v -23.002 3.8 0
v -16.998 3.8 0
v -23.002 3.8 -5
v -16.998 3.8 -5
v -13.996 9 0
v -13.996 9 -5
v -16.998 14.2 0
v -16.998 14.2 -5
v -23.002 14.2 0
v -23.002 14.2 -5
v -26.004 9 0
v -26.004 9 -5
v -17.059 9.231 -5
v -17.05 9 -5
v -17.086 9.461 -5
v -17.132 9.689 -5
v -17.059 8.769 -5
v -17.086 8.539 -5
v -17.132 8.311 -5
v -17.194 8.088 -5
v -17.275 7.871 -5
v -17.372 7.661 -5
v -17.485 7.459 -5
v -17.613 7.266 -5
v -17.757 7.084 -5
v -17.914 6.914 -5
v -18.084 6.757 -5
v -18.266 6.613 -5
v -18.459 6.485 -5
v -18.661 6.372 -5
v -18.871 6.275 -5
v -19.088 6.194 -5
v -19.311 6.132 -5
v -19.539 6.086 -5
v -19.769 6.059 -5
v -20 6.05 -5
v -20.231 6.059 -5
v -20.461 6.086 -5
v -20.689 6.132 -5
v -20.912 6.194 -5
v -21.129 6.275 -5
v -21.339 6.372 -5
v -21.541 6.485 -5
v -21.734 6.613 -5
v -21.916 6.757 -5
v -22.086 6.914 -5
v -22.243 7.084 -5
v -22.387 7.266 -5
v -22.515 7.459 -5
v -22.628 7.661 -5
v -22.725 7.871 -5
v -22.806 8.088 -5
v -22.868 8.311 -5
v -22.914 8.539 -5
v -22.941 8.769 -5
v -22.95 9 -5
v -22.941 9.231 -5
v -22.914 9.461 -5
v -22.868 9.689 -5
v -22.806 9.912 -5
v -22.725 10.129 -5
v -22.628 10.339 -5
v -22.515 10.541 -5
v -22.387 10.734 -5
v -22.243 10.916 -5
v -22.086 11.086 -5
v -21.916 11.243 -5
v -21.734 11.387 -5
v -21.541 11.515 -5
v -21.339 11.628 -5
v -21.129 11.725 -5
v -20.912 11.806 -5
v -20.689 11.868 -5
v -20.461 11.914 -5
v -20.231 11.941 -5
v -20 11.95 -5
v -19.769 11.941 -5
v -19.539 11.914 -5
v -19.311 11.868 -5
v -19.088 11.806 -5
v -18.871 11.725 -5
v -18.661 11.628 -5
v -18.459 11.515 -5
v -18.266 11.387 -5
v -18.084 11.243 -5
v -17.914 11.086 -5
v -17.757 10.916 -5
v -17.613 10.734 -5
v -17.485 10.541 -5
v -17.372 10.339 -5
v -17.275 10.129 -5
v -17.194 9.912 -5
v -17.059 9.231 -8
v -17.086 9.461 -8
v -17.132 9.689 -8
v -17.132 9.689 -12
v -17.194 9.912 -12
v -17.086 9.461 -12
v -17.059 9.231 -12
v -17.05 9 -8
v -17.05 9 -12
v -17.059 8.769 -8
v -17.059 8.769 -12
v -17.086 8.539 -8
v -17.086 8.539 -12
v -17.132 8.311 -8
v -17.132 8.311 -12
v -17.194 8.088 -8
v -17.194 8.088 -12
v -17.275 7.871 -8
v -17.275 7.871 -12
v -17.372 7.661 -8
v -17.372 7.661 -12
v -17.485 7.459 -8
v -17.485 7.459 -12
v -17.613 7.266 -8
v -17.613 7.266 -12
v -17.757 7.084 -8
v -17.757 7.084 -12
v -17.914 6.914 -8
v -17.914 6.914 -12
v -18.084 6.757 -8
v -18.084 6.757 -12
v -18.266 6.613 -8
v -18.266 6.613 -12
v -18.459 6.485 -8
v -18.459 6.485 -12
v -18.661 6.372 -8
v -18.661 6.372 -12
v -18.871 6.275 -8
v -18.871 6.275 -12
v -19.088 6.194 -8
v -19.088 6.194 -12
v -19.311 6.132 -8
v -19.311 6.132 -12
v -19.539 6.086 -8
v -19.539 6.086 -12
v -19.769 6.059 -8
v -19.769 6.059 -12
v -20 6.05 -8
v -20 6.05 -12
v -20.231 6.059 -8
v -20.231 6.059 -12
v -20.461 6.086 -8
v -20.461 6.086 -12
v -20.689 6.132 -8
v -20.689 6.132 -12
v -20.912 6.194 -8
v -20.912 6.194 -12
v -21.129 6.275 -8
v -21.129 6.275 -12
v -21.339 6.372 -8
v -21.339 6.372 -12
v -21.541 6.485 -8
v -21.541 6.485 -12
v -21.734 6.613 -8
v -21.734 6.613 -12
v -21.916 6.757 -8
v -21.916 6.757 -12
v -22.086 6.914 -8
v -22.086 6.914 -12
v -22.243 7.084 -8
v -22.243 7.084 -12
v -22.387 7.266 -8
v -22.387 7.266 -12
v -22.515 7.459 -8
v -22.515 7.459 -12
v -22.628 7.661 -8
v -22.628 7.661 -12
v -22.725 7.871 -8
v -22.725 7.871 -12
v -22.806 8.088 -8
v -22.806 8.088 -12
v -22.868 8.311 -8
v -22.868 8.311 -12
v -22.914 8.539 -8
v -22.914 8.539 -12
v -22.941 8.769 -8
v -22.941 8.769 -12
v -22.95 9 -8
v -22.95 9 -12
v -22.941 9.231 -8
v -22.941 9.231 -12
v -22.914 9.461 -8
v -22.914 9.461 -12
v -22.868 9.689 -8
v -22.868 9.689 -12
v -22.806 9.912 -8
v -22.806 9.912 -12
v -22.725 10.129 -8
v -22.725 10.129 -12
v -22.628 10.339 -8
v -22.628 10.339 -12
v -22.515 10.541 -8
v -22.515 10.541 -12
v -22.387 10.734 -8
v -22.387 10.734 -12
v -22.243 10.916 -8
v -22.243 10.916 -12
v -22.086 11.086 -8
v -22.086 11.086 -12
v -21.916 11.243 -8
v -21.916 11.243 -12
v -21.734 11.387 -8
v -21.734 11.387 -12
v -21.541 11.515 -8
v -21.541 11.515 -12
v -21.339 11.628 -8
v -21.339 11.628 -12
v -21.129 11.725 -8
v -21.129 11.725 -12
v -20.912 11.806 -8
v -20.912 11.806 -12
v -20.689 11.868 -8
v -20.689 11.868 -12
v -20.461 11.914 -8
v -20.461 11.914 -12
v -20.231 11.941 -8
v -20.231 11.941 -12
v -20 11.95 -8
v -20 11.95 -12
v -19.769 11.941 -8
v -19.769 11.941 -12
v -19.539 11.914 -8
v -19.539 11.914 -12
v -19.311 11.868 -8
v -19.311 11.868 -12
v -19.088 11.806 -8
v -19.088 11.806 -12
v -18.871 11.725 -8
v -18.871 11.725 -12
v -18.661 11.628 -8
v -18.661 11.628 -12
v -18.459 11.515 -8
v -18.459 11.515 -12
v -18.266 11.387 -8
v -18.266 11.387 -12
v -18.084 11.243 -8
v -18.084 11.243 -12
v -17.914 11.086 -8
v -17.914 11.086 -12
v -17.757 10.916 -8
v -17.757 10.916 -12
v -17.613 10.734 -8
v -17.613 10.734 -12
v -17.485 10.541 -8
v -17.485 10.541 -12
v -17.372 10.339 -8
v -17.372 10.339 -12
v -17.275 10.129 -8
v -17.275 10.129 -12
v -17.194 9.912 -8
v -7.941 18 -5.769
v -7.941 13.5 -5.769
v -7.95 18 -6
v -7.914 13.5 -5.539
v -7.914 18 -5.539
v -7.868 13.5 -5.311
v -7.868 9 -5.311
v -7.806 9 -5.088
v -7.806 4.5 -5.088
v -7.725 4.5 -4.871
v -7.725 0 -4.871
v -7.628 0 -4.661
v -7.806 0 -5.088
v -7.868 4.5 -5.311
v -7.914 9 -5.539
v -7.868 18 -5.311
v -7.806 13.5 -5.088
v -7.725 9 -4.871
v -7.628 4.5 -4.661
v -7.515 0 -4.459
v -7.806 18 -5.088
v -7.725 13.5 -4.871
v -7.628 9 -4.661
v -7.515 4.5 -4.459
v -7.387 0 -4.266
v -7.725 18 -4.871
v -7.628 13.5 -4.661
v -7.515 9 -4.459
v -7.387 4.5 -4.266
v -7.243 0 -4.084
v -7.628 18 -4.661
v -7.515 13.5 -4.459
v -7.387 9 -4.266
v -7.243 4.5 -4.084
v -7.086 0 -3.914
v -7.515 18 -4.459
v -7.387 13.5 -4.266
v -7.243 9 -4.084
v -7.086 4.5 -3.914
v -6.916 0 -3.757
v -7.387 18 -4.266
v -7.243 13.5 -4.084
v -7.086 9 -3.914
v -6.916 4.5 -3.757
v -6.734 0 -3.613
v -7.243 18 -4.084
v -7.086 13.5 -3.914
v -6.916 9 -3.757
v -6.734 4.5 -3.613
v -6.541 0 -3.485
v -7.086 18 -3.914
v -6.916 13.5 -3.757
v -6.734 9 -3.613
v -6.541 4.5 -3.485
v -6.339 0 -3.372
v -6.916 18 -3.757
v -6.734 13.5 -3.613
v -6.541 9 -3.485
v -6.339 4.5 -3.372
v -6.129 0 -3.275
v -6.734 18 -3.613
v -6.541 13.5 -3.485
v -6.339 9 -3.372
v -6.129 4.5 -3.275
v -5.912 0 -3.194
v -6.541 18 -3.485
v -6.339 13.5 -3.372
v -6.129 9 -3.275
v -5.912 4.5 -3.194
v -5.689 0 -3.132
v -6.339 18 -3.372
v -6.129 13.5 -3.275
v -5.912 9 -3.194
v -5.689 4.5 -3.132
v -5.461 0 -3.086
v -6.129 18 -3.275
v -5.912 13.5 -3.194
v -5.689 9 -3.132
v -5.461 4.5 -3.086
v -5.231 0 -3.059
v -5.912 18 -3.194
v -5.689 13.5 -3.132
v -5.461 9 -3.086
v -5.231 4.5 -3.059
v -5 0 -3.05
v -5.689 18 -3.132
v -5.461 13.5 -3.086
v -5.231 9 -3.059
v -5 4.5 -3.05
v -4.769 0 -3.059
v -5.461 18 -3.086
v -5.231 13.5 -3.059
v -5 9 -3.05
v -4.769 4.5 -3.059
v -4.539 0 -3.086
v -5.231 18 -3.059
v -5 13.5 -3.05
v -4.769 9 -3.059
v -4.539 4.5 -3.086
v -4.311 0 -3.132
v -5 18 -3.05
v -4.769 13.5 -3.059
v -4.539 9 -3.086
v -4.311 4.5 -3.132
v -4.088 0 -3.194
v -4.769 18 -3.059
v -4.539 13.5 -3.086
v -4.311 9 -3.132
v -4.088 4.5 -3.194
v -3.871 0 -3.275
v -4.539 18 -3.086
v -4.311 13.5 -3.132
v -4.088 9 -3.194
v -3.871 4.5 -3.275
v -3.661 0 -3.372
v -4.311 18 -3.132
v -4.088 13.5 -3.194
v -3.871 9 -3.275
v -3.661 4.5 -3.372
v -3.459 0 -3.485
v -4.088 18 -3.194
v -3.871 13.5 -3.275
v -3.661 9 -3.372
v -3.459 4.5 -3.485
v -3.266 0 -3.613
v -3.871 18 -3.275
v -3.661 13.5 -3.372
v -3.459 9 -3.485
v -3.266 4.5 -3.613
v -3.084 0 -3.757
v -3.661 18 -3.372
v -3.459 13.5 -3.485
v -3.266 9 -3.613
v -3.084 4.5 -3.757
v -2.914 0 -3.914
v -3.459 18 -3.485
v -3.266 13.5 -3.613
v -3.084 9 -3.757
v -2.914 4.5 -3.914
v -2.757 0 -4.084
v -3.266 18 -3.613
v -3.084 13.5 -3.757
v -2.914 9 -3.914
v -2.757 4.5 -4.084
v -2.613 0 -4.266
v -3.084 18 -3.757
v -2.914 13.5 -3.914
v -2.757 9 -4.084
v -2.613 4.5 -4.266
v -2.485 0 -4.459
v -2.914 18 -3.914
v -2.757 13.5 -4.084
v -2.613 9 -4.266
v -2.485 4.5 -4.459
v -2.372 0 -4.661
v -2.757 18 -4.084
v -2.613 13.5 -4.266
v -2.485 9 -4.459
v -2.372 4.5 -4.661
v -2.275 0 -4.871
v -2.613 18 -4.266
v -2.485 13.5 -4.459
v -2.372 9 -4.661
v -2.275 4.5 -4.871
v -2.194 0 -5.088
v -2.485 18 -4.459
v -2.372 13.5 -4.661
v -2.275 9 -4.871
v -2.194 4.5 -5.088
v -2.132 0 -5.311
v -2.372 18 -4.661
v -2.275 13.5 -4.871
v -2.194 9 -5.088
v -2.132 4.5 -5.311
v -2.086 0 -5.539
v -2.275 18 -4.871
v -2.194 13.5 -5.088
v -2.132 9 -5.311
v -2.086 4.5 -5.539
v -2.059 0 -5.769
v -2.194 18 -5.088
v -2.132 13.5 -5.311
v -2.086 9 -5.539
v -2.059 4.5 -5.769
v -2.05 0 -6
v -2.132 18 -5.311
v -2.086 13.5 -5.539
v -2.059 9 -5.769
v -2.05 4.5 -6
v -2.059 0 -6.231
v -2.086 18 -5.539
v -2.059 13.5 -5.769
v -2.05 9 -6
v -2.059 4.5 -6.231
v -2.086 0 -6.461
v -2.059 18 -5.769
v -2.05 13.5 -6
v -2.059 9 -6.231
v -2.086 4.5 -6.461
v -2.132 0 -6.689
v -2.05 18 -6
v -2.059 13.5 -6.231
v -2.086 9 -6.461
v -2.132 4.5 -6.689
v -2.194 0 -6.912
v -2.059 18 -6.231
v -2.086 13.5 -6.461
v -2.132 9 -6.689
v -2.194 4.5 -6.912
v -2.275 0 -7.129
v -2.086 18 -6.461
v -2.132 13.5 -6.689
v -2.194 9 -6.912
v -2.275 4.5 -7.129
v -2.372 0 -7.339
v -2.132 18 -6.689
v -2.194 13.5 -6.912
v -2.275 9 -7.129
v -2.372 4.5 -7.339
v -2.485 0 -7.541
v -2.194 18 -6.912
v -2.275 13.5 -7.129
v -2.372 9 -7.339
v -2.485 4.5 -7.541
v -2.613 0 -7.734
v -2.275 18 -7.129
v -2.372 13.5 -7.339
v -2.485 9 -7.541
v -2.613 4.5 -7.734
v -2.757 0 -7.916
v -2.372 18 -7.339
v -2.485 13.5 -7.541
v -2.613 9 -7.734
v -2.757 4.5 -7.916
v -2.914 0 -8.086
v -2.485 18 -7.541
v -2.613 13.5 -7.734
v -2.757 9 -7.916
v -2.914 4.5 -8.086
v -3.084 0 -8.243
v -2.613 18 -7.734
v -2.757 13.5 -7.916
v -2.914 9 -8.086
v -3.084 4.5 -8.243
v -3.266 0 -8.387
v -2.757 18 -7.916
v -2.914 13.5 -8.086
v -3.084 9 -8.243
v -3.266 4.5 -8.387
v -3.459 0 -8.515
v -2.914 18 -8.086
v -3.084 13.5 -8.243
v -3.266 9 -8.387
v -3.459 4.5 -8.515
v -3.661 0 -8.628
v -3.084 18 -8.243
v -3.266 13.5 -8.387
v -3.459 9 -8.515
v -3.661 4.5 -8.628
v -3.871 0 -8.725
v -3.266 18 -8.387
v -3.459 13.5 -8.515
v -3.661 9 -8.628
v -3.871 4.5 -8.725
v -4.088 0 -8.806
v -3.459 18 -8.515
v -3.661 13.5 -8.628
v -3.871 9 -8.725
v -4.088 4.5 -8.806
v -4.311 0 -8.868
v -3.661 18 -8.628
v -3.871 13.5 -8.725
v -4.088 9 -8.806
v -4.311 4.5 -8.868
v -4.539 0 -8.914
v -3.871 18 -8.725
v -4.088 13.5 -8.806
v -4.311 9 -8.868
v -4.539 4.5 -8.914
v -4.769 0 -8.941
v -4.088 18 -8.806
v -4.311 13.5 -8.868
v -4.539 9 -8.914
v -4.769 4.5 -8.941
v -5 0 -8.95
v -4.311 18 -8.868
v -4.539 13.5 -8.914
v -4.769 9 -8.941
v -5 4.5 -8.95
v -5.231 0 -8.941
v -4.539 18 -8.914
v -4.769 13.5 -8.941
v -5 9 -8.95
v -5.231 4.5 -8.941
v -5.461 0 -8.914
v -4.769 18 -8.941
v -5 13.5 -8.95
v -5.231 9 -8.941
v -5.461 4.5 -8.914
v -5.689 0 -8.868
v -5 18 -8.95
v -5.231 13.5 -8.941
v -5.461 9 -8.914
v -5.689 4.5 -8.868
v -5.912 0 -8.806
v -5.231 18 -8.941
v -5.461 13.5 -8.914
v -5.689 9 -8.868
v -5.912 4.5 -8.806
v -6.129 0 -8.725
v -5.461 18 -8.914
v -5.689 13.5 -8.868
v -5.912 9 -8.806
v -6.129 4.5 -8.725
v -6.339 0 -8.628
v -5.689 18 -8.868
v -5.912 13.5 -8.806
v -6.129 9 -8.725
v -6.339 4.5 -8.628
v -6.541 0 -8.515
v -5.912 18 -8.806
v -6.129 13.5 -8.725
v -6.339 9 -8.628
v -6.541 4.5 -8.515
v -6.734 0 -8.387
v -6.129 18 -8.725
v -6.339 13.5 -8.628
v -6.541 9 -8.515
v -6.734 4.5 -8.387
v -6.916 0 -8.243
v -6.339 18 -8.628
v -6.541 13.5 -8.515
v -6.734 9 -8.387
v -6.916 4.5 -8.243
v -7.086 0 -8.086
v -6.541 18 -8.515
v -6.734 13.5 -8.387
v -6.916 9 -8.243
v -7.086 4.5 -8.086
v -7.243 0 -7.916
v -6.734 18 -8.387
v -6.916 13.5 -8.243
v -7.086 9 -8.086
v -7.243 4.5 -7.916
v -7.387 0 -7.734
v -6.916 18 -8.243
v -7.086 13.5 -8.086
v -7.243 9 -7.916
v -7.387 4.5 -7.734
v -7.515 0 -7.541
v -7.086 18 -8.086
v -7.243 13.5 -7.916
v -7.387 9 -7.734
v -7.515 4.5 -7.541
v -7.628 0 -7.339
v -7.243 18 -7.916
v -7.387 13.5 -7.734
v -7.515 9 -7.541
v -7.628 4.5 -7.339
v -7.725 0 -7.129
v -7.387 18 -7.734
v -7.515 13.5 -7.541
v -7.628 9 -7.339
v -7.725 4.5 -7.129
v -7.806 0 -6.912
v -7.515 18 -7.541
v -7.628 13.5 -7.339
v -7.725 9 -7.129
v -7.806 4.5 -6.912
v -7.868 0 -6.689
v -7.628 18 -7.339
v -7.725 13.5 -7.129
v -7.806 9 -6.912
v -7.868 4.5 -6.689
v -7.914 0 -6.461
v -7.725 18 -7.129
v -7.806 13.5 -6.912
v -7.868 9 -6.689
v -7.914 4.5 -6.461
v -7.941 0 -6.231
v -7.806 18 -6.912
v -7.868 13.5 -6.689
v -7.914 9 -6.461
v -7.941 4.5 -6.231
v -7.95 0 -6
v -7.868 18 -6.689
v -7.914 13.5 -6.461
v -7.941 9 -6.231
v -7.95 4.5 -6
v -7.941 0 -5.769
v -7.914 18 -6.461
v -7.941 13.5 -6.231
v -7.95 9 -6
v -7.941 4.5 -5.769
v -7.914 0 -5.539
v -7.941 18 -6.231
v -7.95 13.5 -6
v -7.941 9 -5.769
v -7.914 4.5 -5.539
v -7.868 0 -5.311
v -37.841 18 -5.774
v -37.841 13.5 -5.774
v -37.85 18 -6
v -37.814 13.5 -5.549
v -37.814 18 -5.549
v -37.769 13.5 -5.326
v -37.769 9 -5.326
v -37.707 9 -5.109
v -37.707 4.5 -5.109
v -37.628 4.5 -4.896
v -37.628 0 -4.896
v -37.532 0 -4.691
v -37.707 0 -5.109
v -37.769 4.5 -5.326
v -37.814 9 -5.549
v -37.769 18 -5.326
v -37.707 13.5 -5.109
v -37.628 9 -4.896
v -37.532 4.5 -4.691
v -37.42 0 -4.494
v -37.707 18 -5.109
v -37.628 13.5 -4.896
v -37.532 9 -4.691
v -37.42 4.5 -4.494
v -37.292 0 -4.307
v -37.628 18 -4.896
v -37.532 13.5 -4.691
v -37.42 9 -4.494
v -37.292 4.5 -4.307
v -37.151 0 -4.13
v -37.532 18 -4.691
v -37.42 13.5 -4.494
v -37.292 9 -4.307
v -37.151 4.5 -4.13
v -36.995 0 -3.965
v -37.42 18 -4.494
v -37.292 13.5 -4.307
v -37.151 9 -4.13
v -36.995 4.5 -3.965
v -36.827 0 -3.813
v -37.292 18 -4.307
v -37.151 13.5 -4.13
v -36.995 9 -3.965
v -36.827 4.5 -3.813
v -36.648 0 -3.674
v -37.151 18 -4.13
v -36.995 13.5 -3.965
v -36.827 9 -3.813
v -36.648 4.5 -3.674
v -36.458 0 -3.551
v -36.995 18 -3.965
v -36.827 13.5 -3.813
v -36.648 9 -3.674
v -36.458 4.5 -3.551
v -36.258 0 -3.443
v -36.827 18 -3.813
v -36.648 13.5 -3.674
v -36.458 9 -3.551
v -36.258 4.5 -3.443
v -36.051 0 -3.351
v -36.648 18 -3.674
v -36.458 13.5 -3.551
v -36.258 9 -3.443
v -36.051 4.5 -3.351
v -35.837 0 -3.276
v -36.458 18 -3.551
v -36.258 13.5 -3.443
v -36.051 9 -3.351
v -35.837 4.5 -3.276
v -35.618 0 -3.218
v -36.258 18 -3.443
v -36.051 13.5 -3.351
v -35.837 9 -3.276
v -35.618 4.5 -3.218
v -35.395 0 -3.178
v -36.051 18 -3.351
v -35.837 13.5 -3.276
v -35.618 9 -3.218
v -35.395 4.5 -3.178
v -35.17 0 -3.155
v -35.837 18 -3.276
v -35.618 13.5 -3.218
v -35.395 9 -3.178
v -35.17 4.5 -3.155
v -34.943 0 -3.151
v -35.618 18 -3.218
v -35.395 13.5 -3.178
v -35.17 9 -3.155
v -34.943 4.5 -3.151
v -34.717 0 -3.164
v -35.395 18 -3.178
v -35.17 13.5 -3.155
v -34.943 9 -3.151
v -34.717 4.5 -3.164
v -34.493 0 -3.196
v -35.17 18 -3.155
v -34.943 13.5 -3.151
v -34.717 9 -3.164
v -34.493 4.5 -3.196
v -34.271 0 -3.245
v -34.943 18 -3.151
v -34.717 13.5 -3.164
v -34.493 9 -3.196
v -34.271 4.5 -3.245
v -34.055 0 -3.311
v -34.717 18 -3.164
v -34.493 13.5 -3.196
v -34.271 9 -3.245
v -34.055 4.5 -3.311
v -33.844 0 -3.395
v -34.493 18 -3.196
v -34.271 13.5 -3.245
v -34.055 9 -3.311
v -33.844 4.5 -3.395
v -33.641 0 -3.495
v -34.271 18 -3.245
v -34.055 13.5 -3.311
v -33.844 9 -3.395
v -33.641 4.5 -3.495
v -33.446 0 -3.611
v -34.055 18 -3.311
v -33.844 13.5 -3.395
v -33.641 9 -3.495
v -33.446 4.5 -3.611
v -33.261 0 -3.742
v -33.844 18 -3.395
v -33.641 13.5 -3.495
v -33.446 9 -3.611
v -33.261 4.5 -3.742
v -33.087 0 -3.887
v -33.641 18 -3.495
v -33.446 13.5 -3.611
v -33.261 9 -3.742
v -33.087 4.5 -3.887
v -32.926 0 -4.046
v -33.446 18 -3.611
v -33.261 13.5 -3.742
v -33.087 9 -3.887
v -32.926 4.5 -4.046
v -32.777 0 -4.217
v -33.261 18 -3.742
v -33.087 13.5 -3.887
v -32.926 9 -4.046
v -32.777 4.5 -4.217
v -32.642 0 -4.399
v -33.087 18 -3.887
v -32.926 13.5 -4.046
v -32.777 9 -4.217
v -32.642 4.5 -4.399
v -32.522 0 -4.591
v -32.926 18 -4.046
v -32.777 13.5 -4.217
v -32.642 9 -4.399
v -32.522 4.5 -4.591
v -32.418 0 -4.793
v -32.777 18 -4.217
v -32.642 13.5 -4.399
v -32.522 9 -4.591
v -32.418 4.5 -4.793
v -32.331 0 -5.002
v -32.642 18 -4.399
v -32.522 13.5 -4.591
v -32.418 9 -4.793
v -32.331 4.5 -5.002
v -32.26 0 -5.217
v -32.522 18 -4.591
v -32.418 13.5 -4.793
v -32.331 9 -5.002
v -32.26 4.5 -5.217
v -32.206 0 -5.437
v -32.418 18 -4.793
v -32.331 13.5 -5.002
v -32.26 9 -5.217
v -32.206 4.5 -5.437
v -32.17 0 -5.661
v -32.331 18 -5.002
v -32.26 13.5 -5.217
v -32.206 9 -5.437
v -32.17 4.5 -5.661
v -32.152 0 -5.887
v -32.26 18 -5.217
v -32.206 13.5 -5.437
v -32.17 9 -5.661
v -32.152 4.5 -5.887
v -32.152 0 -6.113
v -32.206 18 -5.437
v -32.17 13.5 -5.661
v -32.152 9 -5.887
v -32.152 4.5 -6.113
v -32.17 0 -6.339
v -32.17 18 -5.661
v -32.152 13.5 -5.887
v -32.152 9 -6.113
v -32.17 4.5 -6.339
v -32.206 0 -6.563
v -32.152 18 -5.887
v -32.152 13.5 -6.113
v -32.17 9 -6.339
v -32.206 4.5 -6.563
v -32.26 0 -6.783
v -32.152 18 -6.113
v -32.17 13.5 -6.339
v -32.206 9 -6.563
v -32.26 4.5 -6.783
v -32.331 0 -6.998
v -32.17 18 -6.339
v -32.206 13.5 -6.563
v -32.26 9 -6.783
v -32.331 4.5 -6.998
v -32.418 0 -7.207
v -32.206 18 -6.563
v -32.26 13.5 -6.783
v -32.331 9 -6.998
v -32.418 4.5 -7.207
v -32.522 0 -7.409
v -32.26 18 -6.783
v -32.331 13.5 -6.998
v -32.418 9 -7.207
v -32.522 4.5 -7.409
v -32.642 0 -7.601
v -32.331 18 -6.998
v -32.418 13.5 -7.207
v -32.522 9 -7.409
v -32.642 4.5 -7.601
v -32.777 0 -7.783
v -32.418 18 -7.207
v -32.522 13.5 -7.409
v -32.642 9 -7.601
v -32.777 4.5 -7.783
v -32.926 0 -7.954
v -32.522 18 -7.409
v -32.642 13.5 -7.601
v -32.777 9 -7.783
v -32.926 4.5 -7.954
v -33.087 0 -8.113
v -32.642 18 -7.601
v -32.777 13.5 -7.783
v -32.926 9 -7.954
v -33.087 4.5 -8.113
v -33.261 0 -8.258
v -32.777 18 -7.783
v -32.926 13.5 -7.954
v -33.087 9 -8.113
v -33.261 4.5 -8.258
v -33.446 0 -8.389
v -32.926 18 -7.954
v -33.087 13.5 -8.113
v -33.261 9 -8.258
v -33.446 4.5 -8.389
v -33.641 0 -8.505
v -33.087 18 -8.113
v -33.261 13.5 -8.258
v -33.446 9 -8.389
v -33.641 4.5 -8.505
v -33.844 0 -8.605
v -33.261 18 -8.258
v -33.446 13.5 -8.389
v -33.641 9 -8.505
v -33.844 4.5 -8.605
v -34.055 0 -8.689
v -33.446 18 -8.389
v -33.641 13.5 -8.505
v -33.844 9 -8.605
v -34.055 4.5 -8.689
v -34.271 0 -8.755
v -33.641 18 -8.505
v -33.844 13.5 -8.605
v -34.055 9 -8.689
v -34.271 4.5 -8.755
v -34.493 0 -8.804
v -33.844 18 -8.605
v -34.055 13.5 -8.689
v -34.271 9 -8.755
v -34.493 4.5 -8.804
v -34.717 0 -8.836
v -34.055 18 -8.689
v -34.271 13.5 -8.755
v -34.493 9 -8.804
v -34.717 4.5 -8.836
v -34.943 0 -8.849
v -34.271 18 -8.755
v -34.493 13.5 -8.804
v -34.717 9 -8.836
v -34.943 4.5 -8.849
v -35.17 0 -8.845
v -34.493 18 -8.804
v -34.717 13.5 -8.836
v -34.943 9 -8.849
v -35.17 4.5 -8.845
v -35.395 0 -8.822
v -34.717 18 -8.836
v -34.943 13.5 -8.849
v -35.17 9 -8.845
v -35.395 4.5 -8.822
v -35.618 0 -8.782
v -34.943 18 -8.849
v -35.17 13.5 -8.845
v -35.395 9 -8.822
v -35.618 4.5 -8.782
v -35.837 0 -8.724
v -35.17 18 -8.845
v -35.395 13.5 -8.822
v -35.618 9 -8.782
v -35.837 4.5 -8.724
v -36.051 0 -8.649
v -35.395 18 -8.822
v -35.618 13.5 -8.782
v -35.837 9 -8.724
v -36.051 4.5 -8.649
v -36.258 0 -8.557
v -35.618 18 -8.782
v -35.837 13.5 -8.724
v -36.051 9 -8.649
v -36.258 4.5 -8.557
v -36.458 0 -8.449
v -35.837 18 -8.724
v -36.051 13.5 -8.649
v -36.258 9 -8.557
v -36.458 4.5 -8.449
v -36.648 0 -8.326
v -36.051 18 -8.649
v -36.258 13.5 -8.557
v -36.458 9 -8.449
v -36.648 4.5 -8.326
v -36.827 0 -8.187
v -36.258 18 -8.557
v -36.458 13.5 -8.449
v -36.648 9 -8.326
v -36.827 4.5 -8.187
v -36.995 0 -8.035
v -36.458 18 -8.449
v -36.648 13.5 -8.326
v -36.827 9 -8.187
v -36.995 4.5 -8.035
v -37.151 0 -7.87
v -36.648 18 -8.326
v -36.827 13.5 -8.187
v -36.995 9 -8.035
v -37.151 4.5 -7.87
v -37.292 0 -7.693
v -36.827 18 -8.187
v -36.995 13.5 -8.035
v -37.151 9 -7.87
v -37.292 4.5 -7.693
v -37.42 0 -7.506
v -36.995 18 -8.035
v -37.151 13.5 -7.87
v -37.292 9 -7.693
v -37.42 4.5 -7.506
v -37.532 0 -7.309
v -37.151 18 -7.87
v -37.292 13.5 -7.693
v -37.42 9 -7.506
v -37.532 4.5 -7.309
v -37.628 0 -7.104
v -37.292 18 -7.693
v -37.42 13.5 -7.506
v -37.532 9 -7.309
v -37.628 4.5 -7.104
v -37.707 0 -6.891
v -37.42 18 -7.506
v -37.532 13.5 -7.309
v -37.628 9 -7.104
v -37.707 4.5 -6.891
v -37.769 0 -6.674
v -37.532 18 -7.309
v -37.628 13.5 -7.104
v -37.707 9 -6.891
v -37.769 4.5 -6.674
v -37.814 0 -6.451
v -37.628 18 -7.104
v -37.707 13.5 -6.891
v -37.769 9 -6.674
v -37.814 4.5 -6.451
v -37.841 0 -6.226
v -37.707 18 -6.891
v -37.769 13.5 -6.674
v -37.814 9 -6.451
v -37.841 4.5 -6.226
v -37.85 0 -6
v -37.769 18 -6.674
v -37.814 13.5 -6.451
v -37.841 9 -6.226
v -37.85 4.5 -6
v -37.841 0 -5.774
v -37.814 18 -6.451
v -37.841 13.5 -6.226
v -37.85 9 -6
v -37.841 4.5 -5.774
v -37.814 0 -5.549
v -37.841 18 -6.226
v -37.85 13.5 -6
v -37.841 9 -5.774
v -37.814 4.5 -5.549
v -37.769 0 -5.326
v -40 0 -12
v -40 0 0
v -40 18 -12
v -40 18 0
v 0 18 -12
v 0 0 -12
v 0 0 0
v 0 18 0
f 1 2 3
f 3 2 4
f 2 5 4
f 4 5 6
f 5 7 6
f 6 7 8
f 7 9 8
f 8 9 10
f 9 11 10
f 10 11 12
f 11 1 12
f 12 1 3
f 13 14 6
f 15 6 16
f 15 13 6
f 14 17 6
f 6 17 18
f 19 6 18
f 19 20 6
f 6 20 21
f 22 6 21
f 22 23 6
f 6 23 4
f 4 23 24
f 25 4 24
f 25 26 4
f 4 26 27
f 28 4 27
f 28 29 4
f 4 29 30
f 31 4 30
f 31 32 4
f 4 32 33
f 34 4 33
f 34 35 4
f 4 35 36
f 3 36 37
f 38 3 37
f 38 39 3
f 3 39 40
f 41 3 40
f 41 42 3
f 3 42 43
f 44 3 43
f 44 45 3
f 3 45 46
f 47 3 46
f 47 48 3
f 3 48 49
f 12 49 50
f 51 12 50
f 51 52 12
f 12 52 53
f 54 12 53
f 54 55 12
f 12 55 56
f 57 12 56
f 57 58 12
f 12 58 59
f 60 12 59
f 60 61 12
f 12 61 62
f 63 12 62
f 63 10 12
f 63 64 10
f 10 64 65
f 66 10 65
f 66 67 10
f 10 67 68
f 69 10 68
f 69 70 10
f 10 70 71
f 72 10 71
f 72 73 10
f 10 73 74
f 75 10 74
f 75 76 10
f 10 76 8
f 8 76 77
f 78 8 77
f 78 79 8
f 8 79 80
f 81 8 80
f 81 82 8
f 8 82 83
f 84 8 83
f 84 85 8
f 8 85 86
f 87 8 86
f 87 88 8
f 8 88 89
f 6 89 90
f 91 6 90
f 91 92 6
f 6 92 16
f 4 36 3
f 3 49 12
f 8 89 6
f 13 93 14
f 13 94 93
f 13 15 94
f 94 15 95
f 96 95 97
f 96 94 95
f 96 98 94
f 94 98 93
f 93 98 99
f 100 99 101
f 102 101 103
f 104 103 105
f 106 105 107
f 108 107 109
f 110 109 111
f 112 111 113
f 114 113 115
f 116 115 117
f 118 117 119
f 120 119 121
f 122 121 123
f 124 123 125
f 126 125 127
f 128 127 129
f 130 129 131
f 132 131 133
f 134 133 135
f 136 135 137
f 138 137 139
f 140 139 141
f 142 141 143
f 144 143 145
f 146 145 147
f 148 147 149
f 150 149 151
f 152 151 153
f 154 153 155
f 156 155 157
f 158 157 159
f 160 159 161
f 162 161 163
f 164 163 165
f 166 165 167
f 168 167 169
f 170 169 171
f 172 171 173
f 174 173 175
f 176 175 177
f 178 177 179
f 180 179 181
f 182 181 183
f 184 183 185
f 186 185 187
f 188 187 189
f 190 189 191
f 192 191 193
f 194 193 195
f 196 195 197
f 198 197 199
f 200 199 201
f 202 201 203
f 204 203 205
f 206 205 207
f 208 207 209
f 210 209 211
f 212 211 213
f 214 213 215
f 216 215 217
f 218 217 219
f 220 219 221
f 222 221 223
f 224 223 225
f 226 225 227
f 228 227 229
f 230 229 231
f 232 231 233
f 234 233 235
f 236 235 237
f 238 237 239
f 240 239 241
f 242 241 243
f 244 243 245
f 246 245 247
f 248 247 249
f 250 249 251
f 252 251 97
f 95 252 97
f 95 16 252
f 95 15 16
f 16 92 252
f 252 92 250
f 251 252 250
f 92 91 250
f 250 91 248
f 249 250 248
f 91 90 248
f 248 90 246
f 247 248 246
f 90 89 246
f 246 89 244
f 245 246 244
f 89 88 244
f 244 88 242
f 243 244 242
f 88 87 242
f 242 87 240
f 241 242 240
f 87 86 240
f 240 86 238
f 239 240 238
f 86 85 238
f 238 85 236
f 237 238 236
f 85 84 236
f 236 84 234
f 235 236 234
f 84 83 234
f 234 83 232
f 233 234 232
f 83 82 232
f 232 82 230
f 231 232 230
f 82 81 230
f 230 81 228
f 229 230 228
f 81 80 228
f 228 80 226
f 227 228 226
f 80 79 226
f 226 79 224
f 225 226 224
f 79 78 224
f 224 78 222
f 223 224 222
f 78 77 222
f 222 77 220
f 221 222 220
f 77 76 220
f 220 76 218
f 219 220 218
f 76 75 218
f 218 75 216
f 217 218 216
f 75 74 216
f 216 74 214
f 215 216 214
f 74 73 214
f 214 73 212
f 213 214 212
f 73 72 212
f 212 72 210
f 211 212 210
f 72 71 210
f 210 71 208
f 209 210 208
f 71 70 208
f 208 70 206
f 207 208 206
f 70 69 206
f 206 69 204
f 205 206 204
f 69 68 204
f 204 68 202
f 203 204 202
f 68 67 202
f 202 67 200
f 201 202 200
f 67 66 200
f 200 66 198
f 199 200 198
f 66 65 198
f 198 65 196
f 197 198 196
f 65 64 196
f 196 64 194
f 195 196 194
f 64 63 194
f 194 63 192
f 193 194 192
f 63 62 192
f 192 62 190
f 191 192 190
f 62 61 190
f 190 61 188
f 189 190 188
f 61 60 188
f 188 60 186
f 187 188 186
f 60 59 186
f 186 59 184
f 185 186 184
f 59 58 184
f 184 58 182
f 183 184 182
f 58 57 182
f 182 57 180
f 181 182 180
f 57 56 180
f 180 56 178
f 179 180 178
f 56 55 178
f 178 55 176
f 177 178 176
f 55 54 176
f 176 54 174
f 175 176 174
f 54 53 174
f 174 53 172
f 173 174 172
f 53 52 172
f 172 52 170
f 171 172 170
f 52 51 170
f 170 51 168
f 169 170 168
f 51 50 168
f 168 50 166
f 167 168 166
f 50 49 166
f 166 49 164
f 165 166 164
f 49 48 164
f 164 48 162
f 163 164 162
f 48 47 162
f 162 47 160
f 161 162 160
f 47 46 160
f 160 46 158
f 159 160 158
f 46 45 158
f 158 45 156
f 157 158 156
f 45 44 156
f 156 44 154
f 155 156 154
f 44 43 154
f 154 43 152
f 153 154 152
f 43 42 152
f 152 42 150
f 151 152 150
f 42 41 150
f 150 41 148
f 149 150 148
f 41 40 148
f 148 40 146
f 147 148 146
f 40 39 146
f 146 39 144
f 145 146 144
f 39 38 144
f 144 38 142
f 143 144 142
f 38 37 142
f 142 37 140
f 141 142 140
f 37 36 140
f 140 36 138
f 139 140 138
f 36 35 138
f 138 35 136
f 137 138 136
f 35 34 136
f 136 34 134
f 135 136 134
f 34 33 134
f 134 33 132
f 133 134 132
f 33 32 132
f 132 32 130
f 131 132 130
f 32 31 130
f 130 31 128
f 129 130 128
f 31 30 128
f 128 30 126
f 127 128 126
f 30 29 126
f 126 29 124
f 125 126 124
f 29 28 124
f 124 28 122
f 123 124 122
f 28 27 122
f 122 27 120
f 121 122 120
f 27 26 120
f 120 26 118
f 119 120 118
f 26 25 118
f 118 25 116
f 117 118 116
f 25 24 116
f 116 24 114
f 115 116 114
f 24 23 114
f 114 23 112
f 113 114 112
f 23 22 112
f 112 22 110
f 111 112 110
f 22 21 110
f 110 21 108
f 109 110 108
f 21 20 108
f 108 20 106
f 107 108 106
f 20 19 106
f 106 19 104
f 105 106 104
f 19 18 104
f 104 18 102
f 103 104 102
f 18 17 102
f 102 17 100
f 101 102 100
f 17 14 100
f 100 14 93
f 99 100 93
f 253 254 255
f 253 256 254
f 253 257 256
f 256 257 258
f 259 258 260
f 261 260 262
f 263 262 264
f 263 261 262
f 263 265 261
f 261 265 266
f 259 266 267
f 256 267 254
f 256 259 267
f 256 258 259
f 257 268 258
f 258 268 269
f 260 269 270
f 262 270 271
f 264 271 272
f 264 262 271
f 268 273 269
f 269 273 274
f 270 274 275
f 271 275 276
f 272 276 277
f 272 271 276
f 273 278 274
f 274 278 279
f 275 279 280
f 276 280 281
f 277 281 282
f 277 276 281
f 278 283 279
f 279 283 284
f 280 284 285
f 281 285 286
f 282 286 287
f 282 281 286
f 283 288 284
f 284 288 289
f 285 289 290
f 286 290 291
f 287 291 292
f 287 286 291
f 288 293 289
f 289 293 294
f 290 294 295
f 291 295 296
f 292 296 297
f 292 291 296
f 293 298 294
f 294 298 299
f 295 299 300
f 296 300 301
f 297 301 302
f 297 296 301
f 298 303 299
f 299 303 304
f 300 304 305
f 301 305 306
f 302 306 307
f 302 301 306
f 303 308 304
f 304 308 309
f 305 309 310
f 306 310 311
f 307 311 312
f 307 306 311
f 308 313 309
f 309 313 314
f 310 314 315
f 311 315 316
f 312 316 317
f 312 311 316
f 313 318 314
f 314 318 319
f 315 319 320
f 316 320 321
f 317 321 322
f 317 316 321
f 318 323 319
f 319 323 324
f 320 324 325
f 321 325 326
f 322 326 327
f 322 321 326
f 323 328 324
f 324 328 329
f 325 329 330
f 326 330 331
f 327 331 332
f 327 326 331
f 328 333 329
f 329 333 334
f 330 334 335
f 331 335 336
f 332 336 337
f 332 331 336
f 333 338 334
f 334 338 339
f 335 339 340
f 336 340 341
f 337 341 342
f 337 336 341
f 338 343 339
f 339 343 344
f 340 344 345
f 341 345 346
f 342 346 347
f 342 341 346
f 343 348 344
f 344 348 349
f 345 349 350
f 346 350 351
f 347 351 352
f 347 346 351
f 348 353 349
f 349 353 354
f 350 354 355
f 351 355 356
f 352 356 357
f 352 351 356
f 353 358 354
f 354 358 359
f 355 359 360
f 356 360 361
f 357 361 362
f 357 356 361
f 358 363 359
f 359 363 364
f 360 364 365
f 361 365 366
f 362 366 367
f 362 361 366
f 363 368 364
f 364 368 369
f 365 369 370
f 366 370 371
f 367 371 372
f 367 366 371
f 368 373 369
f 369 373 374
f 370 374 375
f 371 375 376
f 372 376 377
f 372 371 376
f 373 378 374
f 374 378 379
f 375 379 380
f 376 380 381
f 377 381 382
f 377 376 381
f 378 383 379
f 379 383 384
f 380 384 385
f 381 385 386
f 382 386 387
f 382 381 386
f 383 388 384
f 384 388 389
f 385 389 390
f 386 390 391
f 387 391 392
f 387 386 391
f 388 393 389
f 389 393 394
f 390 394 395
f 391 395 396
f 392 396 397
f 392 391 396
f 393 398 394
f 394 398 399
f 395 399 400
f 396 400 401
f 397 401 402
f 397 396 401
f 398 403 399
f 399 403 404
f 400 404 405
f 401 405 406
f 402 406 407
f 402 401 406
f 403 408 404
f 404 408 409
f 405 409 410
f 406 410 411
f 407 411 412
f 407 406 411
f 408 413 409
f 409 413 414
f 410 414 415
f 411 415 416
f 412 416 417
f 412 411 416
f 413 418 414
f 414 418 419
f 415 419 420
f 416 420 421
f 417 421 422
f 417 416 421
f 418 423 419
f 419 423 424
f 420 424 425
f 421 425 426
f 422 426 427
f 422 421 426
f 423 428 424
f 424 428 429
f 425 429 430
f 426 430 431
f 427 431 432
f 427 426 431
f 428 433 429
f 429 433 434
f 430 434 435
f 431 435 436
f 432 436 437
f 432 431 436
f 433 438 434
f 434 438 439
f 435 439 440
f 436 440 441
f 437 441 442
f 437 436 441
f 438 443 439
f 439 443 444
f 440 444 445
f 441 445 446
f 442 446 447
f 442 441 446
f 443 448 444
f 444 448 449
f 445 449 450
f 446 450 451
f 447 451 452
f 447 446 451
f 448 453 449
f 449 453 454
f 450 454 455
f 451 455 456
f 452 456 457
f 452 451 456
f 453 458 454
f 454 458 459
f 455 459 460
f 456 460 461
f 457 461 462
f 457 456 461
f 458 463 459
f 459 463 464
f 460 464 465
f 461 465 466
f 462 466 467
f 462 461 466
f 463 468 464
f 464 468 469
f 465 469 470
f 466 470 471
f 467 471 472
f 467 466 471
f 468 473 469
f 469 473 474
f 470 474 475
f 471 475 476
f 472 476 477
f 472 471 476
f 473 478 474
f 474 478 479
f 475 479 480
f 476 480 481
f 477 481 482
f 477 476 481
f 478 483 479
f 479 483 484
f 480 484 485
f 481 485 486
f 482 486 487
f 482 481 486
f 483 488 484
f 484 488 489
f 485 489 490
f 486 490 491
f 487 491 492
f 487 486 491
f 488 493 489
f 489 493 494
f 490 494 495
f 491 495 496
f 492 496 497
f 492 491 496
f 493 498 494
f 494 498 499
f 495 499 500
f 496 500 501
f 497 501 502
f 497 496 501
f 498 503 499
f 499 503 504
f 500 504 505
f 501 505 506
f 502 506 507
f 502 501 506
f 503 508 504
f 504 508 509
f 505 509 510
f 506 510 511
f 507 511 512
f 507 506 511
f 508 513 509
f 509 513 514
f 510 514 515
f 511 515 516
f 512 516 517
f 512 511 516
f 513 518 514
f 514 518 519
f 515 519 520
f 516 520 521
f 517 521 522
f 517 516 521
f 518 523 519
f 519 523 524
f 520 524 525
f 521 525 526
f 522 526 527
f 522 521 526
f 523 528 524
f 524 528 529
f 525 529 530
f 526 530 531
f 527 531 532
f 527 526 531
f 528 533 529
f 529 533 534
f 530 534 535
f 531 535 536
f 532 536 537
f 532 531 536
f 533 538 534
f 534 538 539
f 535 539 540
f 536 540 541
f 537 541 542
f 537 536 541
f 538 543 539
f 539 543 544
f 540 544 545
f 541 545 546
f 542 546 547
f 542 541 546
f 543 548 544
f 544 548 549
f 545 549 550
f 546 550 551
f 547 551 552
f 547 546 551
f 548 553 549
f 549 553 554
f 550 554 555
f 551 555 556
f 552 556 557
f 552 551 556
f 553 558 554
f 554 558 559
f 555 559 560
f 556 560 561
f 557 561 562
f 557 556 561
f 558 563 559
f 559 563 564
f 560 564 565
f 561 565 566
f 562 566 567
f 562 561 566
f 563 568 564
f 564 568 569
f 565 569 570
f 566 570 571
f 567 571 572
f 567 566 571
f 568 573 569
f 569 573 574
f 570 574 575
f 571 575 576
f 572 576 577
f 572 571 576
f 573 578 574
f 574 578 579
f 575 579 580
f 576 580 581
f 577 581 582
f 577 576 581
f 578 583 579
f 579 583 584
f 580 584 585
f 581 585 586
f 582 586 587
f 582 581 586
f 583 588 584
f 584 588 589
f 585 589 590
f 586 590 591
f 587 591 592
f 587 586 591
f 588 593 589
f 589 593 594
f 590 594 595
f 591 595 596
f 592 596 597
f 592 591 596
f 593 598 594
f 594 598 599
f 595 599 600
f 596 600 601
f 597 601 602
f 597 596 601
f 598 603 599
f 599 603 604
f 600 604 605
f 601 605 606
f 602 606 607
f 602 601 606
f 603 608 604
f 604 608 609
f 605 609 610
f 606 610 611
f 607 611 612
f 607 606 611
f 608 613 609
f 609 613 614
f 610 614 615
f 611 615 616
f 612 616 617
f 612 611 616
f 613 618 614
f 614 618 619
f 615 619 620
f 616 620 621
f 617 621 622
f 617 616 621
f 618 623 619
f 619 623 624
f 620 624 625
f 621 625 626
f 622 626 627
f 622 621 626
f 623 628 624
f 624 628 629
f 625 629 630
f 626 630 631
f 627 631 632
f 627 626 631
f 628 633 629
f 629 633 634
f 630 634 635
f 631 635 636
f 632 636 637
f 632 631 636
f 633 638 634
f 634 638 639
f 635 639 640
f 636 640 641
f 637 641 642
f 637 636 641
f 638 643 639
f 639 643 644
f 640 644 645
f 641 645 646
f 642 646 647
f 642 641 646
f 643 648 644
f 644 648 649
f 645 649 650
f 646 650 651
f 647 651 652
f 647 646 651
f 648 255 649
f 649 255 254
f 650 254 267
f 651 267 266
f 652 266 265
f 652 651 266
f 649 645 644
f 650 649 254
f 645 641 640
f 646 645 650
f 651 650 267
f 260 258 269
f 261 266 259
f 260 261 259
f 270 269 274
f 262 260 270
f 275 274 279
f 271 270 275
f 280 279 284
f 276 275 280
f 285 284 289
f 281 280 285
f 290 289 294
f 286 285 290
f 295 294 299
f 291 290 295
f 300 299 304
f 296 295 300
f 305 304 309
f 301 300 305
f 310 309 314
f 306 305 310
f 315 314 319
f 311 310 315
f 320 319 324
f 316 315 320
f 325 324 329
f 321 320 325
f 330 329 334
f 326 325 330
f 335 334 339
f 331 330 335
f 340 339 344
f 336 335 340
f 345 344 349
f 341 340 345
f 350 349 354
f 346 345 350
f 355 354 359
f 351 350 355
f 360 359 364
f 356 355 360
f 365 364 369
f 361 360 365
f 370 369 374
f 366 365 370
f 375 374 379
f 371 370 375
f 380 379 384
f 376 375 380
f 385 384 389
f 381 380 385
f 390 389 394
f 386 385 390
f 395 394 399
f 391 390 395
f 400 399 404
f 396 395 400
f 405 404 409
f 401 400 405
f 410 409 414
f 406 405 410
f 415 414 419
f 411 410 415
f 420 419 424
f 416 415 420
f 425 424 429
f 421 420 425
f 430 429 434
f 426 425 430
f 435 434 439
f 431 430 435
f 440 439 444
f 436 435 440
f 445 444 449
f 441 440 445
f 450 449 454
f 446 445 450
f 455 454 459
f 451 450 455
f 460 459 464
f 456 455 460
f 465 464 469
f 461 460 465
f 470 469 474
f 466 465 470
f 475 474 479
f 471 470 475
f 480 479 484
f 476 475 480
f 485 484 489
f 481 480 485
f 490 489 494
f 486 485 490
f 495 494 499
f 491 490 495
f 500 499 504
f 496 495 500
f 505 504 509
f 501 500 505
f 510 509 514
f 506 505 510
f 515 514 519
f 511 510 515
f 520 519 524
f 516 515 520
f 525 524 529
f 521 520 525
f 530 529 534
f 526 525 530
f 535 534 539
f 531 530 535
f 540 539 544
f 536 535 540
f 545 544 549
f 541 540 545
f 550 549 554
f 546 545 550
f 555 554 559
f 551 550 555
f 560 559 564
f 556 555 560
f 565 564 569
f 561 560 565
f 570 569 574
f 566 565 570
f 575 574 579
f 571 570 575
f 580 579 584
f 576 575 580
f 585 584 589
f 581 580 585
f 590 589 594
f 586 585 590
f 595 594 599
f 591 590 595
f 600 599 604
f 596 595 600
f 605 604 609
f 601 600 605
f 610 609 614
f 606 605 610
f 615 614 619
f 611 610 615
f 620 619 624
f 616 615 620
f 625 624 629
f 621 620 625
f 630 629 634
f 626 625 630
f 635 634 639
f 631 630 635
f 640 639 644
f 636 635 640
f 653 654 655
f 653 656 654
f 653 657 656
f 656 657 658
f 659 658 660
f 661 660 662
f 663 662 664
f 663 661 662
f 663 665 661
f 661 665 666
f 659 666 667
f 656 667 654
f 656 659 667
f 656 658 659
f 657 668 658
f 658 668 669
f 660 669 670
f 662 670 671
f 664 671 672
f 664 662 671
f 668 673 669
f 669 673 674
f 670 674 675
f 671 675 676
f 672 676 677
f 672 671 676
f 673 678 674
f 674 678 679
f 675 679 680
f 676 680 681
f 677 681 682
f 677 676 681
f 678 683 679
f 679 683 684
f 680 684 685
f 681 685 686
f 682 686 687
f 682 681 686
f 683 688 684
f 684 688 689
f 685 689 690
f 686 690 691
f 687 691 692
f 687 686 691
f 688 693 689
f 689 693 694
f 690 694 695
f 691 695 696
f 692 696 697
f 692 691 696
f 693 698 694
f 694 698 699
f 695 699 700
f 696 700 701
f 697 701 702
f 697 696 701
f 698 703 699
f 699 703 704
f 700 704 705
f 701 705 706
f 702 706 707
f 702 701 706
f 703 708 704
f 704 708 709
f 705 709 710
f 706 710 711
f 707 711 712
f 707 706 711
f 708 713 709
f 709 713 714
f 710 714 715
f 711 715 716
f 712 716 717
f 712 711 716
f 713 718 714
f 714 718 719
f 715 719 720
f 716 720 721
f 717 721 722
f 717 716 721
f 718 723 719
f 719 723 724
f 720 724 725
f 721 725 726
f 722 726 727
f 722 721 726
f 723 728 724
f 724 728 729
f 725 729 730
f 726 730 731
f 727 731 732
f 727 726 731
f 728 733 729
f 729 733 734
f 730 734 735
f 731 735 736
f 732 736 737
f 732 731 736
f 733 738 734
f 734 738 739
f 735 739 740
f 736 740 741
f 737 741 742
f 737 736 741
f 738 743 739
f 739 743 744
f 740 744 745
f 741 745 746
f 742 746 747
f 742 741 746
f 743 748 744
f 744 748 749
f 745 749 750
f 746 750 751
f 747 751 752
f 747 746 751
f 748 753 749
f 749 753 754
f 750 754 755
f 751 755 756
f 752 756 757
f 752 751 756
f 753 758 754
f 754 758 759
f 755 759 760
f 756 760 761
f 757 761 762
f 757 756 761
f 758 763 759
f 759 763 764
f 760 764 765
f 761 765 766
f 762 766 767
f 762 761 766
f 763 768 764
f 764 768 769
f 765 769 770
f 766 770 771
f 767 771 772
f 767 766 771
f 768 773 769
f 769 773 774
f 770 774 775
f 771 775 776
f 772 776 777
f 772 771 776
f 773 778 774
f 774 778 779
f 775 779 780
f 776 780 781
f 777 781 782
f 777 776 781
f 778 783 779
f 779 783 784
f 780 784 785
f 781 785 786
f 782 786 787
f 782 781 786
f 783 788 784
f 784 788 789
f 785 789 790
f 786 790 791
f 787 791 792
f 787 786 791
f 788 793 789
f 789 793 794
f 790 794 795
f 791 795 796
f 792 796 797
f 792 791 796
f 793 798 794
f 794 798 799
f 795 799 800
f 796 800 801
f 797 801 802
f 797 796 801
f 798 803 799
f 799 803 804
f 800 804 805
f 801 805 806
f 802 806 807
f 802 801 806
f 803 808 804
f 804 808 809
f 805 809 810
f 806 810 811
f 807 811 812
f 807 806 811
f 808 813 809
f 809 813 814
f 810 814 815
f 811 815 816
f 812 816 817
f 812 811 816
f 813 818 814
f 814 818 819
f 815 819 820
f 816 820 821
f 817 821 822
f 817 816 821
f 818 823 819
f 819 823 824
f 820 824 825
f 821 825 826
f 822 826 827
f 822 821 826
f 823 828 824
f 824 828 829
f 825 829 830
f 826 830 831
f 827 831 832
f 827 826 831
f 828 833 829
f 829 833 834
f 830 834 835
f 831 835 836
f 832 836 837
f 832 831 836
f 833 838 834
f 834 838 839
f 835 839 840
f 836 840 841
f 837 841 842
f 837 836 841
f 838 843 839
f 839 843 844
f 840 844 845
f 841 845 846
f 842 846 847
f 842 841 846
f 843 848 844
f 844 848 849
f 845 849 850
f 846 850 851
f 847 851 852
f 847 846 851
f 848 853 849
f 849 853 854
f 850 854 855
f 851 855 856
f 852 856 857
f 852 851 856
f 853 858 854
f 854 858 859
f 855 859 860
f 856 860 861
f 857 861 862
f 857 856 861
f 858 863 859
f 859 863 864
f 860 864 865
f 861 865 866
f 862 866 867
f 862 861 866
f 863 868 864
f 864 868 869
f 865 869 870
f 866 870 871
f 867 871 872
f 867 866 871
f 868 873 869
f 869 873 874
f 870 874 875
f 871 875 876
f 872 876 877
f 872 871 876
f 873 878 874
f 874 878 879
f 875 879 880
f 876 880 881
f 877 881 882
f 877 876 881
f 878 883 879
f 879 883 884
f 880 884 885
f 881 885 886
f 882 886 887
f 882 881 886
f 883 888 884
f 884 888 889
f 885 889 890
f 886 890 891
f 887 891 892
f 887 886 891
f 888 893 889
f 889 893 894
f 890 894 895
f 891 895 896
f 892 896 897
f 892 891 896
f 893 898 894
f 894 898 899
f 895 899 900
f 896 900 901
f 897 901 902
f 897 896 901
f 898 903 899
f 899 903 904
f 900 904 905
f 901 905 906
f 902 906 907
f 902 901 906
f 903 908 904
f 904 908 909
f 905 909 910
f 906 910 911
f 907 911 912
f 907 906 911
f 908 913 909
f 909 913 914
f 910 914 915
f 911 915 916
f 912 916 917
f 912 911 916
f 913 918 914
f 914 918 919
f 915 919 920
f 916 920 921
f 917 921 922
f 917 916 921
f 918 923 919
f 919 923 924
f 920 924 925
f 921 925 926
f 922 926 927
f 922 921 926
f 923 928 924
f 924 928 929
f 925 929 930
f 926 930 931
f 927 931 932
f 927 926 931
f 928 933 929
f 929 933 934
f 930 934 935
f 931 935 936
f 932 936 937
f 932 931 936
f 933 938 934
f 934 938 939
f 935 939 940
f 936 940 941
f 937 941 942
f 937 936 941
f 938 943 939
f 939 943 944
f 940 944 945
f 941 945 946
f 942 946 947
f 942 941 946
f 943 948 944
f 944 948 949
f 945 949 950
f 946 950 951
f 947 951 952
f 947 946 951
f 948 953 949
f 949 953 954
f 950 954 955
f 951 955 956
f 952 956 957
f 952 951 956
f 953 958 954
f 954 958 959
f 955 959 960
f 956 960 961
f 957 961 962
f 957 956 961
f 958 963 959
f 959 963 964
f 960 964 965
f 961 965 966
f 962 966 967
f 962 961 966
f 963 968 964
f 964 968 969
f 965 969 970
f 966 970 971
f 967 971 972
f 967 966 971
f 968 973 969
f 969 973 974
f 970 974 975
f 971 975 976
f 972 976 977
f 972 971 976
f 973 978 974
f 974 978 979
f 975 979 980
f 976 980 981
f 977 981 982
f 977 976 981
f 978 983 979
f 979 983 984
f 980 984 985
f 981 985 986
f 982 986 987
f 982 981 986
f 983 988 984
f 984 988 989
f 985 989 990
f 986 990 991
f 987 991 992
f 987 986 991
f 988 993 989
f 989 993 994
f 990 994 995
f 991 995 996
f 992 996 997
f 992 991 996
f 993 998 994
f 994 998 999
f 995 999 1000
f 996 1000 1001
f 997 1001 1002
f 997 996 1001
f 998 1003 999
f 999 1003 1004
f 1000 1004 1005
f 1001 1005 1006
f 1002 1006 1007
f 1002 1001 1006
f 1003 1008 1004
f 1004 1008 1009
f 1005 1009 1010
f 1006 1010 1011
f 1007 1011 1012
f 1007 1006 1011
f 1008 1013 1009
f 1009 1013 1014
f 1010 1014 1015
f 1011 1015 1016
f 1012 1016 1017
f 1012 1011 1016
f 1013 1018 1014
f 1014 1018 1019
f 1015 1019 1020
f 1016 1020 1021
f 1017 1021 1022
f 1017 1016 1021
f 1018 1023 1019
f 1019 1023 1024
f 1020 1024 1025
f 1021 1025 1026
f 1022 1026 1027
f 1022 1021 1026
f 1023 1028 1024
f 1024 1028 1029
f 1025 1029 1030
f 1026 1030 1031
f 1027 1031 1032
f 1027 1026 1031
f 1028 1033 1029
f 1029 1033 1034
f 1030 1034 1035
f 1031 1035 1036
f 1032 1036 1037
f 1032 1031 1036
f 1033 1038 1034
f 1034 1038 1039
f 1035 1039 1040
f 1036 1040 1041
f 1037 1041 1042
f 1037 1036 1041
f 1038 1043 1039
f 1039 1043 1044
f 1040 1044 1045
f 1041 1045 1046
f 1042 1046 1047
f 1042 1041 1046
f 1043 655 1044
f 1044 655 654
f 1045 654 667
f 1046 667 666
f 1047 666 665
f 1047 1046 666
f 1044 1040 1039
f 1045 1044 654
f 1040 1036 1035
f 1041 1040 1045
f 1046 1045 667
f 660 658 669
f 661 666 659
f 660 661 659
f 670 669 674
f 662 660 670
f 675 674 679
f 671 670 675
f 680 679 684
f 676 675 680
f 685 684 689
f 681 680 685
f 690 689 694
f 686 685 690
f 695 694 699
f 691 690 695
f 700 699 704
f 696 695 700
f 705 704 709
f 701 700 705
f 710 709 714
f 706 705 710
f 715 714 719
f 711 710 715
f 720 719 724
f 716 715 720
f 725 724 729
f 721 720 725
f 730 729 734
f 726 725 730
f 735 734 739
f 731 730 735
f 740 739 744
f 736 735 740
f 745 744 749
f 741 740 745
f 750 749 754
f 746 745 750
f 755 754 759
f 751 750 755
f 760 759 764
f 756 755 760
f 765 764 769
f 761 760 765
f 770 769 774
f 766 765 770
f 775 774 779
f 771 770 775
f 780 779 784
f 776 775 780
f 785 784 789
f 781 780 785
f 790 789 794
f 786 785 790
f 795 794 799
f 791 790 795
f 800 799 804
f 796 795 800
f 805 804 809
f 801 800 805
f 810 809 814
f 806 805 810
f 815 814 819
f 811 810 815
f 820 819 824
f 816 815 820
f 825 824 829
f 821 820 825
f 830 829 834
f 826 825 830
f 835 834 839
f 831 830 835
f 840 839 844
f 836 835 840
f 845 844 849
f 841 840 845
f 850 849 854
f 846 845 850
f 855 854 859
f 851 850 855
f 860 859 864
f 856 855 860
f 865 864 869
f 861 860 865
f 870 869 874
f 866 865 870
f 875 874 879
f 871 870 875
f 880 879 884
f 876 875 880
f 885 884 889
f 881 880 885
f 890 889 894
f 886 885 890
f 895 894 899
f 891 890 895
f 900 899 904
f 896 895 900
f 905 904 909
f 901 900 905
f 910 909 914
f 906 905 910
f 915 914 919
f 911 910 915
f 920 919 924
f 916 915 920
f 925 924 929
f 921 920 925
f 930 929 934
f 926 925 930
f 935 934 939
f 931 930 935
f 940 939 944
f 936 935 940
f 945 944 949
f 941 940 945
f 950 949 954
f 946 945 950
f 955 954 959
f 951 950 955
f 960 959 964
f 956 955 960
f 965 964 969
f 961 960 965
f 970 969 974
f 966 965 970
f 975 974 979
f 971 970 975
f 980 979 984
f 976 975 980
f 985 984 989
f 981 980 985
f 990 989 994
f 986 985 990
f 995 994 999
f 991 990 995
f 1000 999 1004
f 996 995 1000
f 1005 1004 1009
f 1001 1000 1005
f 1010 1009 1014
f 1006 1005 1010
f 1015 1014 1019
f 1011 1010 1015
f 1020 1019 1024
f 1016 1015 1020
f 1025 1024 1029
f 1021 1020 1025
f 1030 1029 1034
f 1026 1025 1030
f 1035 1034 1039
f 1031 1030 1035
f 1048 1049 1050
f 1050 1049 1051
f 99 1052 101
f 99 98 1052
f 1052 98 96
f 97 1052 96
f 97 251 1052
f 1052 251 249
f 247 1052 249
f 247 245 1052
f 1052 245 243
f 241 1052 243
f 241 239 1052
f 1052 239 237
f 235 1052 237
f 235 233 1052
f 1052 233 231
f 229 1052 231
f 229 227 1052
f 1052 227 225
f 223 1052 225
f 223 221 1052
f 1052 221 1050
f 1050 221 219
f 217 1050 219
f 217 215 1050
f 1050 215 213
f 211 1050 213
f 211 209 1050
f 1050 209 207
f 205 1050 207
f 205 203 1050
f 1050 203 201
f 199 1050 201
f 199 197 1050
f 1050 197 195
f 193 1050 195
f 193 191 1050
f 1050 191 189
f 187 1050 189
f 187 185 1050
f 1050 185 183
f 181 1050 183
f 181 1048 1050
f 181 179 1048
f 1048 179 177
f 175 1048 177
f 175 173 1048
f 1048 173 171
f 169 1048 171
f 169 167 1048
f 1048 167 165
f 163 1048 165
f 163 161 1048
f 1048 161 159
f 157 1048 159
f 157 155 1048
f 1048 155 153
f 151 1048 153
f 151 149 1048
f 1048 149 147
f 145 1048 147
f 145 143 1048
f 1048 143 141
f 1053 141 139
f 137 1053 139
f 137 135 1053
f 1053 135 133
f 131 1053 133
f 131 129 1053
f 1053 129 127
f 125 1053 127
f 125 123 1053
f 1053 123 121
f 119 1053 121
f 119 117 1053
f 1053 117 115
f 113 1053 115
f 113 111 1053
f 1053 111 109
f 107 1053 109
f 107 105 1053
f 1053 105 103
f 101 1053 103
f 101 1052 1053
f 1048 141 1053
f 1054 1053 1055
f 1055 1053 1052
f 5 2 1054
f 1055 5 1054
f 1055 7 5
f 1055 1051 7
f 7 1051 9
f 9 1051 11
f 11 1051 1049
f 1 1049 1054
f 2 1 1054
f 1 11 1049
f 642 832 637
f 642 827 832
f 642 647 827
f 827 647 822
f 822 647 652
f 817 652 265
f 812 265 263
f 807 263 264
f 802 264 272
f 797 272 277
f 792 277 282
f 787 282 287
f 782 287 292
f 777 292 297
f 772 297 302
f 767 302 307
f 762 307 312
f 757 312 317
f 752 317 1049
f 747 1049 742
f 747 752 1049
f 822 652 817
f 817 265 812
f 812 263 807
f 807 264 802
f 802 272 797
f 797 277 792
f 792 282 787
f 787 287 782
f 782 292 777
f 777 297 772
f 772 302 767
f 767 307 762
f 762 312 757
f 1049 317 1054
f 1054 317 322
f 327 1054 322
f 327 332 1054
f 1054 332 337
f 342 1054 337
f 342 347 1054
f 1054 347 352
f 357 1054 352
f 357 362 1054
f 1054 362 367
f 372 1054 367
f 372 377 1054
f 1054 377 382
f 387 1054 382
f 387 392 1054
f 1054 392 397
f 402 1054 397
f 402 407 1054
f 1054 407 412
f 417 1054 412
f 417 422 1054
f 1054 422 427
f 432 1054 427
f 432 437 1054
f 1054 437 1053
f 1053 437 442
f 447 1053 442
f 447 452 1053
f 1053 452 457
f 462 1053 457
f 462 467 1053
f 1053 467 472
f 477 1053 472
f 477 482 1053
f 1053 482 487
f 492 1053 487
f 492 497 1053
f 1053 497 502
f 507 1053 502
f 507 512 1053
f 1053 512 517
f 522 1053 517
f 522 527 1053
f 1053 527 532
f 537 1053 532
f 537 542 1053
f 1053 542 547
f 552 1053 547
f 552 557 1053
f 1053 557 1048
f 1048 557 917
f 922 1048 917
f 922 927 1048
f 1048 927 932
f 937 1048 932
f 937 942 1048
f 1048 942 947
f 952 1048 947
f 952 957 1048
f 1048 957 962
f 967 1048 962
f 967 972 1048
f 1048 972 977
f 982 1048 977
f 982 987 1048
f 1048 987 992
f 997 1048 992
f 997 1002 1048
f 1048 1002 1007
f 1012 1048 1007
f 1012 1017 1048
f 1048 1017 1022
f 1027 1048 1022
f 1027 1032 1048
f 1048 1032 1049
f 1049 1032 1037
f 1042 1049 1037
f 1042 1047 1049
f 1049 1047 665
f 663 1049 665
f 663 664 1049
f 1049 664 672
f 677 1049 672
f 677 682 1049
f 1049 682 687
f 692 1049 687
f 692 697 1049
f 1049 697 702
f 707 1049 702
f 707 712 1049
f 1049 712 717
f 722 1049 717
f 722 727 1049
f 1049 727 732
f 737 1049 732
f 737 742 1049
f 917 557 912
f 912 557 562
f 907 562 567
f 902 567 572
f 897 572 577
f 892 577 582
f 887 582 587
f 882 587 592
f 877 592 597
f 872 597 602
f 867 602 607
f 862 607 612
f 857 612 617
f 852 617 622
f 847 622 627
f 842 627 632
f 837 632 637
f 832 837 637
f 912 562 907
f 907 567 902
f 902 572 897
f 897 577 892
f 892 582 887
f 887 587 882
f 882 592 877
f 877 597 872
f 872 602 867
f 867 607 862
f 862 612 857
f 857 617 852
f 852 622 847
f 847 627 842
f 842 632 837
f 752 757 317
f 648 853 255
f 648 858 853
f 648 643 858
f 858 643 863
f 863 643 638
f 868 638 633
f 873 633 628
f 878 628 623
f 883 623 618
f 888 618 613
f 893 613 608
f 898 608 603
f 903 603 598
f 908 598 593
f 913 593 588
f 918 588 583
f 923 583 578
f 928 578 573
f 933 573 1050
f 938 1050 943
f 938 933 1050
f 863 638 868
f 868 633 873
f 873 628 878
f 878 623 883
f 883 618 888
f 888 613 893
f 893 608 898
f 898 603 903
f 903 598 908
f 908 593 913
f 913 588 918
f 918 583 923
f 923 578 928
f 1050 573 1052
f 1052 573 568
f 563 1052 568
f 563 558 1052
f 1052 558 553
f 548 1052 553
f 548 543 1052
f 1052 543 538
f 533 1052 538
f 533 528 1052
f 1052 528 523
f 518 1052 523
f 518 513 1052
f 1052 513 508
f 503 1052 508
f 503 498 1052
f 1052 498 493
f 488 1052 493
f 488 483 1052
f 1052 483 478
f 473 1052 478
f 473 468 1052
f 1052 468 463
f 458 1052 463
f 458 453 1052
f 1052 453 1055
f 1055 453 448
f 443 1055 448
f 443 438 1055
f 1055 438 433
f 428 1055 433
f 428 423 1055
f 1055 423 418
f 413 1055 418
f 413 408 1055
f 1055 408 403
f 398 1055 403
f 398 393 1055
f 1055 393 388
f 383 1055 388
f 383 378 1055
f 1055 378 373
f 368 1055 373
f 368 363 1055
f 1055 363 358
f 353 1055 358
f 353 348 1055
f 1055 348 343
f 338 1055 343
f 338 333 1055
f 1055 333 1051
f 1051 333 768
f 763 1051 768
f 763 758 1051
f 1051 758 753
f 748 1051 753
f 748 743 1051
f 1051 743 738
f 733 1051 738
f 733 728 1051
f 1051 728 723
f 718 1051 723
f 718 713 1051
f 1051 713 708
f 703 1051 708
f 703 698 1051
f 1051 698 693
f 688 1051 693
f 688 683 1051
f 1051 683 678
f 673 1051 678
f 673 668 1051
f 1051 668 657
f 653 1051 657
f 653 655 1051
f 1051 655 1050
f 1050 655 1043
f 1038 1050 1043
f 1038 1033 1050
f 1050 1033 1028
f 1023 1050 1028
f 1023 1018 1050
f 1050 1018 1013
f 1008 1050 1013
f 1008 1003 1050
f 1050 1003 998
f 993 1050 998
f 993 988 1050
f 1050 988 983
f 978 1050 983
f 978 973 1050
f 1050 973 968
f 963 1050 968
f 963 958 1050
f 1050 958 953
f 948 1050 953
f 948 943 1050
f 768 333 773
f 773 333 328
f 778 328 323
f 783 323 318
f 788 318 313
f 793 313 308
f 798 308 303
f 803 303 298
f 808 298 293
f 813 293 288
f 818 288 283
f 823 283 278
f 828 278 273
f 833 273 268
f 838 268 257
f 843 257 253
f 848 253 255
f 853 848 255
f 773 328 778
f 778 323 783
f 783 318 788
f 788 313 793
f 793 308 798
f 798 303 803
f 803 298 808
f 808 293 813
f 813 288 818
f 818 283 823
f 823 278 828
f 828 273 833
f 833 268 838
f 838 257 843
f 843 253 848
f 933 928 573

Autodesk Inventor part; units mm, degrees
ref_plane "YZ Plane" through (0, 0, 0) normal (1, 0, 0) x (0, 1, 0)
ref_plane "XZ Plane" through (0, 0, 0) normal (0, 1, 0) x (-1, 0, 0)
ref_plane "XY Plane" through (0, 0, 0) normal (0, 0, 1) x (1, 0, 0)
sketch "Sketch1" plane through (0, 0, 0) normal (0, 1, 0) x (-1, 0, 0)
  line L0 (0, 0) -> (40, 0)
  line L1 (40, 0) -> (40, -12)
  line L2 (40, -12) -> (0, -12)
  line L3 (0, -12) -> (0, 0)
  circle A0 centre (35, -6) radius 2.85
  circle A1 centre (5, -6) radius 2.95
  dimension "d0" = 40
  dimension "d1" = 12
  dimension "d2" = 5.7
  dimension "d3" = 5.9
  dimension "d4" = 5
  dimension "d6" = 6
  dimension "d33" = 5
extrude "Extrusion1" add sketch "Sketch1" along normal blind 18
sketch "Sketch8" plane through (-40, 0, 0) normal (0, 0, 1) x (1, 0, 0)
  circle A0 centre (20, 9) radius 2.95
  line L0 (0, 0) -> (0, 18) projected
  line L1 (40, 0) -> (0, 0) projected
  dimension "d34" = 5.9
  dimension "d35" = 20
  dimension "d36" = 9
extrude "Extrusion8" cut sketch "Sketch8" against normal up to next
sketch "Sketch9" plane through (-40, 0, 0) normal (0, 0, 1) x (1, 0, 0)
  circle A0 centre (20, 9) radius 2.95 projected
  line L0 (16.9978, 3.8) -> (13.9956, 9)
  line L1 (13.9956, 9) -> (16.9978, 14.2)
  line L2 (16.9978, 14.2) -> (23.0022, 14.2)
  line L3 (23.0022, 14.2) -> (26.0044, 9)
  line L4 (26.0044, 9) -> (23.0022, 3.8)
  line L5 (23.0022, 3.8) -> (16.9978, 3.8)
  line L6 (40, 0) -> (0, 0) projected
  dimension "d39" = 10.4
extrude "Extrusion9" cut sketch "Sketch9" against normal blind 5
properties part number "back_sprocket_holder"
